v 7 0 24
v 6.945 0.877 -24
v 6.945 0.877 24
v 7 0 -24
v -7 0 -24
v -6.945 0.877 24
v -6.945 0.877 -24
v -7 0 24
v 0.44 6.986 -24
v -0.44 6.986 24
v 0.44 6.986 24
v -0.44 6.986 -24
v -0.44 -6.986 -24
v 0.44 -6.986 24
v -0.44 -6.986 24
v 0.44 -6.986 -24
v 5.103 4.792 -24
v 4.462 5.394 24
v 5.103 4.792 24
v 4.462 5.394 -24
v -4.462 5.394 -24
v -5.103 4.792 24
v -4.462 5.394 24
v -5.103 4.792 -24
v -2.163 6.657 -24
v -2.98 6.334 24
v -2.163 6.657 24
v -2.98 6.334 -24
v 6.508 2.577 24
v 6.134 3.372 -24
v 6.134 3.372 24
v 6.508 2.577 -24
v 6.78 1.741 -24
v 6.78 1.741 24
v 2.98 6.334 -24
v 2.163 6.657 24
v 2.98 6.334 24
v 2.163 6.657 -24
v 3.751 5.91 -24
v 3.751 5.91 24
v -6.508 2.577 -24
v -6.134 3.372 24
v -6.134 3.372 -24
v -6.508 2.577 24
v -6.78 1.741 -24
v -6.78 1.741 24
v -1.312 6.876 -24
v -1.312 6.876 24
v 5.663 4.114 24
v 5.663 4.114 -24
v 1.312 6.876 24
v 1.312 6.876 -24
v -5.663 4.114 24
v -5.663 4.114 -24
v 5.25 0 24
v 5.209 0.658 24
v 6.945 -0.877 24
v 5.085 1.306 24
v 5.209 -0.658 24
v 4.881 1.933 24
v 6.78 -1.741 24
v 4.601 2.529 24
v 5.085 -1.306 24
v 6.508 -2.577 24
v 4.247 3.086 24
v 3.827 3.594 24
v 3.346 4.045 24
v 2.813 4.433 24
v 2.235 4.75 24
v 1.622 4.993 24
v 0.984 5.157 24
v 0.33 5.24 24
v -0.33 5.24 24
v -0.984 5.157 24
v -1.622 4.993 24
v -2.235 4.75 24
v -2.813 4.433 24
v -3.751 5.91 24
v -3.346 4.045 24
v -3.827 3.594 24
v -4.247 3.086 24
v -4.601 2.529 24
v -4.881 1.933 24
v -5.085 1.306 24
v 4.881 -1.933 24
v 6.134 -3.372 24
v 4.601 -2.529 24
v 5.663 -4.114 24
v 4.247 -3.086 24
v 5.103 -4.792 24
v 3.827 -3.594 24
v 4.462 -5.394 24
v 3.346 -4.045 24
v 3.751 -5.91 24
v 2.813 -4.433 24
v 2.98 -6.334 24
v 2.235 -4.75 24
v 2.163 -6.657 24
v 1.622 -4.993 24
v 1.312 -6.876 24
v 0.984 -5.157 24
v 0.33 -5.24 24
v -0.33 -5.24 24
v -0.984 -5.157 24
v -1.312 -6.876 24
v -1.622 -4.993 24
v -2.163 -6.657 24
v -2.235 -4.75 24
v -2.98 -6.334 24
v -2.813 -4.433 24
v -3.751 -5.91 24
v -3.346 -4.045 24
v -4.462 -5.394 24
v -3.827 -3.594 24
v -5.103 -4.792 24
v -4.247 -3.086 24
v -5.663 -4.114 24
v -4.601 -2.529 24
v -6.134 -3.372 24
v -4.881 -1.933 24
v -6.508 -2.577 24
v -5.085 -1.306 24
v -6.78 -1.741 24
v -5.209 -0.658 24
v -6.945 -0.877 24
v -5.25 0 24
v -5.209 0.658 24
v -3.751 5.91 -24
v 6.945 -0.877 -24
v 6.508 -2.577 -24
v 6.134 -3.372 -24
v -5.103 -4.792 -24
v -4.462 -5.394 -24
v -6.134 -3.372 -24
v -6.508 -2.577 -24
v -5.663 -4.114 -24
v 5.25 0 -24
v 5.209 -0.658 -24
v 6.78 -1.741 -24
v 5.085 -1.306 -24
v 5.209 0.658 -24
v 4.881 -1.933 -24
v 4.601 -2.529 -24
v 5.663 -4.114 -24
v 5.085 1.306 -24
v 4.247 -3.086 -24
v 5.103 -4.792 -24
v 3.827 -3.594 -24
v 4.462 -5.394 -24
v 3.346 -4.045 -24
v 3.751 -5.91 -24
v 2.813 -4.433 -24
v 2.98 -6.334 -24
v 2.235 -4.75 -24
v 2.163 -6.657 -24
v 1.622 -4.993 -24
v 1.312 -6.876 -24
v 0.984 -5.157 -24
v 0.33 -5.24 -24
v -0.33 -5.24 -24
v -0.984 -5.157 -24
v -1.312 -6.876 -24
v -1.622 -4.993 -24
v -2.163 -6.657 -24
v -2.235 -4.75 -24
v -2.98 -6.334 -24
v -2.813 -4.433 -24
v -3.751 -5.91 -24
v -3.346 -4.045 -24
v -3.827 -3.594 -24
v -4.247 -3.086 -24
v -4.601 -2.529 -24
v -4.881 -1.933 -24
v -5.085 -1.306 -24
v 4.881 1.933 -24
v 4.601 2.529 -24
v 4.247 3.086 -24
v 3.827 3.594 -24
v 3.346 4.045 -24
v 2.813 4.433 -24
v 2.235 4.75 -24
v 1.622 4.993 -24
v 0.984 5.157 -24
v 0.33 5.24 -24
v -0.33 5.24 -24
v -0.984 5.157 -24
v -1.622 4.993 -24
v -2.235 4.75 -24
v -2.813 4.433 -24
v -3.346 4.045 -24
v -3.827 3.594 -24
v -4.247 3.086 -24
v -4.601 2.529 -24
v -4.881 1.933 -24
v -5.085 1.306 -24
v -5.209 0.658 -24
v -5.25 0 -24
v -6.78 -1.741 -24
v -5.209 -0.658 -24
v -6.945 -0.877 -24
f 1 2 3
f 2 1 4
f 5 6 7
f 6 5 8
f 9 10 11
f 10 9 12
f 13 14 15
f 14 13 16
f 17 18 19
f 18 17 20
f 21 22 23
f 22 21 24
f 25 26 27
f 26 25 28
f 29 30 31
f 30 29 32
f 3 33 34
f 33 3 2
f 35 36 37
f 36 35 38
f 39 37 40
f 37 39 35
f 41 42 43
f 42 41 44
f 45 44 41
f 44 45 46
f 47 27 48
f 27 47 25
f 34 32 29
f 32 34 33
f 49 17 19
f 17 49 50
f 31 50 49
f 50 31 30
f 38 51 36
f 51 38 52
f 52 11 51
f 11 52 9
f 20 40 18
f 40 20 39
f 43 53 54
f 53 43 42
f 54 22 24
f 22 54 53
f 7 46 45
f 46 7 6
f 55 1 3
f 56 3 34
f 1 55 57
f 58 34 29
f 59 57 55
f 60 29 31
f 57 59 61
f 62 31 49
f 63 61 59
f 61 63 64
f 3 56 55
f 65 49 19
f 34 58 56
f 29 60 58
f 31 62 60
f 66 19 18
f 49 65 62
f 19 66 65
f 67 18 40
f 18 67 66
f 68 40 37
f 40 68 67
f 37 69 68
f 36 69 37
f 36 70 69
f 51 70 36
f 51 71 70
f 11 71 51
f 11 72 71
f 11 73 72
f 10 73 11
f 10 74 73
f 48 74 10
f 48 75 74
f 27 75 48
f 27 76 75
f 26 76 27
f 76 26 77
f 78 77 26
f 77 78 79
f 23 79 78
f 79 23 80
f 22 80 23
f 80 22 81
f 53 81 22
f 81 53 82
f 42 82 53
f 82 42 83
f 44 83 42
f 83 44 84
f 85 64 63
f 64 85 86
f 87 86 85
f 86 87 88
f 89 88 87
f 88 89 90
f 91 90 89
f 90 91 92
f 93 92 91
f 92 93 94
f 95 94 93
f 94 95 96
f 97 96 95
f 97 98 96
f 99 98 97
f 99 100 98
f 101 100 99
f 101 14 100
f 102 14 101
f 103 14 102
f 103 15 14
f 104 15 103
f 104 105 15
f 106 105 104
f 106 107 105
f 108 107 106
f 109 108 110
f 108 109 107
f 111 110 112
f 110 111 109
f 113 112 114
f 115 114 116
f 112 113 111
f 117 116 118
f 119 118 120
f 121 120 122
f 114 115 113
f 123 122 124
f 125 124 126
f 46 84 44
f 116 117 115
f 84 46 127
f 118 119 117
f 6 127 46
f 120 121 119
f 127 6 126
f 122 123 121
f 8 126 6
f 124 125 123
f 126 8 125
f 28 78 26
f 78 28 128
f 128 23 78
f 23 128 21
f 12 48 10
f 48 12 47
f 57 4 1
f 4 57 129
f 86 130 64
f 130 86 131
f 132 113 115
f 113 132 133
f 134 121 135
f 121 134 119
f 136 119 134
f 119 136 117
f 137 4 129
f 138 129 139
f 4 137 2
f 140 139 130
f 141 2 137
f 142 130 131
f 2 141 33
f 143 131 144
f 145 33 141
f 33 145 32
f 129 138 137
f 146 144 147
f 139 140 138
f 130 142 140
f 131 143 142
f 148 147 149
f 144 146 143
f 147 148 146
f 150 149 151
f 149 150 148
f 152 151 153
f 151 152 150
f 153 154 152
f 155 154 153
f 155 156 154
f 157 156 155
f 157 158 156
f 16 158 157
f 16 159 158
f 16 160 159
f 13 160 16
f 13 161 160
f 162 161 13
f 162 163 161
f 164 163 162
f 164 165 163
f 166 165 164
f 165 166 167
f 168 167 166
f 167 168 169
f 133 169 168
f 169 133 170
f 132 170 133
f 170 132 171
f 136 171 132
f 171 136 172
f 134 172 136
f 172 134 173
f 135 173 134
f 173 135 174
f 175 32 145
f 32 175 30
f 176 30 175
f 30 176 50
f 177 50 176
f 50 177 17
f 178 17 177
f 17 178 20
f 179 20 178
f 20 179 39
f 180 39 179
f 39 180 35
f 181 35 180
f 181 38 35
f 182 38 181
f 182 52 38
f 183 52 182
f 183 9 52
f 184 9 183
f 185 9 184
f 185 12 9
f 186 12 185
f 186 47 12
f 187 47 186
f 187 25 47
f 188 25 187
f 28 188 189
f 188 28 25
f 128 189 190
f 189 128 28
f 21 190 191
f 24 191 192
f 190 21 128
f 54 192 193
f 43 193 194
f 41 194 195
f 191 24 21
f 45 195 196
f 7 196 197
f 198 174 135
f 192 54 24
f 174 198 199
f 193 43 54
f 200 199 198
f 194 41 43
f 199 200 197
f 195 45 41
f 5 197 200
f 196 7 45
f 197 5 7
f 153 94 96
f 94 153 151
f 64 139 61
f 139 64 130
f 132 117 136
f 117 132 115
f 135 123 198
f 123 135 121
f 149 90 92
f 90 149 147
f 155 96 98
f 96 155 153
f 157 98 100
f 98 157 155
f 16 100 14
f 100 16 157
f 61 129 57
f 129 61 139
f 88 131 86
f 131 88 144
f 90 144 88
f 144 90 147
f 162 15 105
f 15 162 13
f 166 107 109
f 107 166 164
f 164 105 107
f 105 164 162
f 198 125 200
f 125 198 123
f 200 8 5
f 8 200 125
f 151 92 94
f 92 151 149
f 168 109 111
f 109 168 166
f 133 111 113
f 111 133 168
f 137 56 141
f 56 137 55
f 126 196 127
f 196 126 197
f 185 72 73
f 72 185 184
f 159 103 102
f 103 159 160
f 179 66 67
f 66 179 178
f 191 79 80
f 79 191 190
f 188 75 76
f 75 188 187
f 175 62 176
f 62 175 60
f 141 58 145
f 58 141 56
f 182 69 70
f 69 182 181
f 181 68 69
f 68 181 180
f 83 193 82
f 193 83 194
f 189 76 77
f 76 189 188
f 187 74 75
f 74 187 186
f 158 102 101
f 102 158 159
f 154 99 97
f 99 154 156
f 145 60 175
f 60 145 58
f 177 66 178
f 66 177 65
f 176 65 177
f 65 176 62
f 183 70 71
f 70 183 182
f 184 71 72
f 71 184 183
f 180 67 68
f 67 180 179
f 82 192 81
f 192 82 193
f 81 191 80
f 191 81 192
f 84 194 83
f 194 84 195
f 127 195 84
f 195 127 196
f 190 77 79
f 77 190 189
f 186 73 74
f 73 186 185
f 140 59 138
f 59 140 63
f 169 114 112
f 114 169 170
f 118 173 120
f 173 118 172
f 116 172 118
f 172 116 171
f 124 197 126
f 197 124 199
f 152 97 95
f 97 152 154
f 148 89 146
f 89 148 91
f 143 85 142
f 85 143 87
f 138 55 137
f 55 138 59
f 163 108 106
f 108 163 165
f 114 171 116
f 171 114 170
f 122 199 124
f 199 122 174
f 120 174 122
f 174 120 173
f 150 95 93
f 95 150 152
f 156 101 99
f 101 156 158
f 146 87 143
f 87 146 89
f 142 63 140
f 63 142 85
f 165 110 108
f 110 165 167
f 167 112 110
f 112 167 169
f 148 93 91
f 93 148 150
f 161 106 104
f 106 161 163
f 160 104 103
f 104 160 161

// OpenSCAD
$fn = 50;


difference() {
	union() {
		translate(v = [0, 0, -24.0000000000]) {
			cylinder(h = 48, r = 7.0000000000);
		}
	}
	union() {
		translate(v = [0, 0, -100.0000000000]) {
			cylinder(h = 200, r = 5.2500000000);
		}
	}
}
